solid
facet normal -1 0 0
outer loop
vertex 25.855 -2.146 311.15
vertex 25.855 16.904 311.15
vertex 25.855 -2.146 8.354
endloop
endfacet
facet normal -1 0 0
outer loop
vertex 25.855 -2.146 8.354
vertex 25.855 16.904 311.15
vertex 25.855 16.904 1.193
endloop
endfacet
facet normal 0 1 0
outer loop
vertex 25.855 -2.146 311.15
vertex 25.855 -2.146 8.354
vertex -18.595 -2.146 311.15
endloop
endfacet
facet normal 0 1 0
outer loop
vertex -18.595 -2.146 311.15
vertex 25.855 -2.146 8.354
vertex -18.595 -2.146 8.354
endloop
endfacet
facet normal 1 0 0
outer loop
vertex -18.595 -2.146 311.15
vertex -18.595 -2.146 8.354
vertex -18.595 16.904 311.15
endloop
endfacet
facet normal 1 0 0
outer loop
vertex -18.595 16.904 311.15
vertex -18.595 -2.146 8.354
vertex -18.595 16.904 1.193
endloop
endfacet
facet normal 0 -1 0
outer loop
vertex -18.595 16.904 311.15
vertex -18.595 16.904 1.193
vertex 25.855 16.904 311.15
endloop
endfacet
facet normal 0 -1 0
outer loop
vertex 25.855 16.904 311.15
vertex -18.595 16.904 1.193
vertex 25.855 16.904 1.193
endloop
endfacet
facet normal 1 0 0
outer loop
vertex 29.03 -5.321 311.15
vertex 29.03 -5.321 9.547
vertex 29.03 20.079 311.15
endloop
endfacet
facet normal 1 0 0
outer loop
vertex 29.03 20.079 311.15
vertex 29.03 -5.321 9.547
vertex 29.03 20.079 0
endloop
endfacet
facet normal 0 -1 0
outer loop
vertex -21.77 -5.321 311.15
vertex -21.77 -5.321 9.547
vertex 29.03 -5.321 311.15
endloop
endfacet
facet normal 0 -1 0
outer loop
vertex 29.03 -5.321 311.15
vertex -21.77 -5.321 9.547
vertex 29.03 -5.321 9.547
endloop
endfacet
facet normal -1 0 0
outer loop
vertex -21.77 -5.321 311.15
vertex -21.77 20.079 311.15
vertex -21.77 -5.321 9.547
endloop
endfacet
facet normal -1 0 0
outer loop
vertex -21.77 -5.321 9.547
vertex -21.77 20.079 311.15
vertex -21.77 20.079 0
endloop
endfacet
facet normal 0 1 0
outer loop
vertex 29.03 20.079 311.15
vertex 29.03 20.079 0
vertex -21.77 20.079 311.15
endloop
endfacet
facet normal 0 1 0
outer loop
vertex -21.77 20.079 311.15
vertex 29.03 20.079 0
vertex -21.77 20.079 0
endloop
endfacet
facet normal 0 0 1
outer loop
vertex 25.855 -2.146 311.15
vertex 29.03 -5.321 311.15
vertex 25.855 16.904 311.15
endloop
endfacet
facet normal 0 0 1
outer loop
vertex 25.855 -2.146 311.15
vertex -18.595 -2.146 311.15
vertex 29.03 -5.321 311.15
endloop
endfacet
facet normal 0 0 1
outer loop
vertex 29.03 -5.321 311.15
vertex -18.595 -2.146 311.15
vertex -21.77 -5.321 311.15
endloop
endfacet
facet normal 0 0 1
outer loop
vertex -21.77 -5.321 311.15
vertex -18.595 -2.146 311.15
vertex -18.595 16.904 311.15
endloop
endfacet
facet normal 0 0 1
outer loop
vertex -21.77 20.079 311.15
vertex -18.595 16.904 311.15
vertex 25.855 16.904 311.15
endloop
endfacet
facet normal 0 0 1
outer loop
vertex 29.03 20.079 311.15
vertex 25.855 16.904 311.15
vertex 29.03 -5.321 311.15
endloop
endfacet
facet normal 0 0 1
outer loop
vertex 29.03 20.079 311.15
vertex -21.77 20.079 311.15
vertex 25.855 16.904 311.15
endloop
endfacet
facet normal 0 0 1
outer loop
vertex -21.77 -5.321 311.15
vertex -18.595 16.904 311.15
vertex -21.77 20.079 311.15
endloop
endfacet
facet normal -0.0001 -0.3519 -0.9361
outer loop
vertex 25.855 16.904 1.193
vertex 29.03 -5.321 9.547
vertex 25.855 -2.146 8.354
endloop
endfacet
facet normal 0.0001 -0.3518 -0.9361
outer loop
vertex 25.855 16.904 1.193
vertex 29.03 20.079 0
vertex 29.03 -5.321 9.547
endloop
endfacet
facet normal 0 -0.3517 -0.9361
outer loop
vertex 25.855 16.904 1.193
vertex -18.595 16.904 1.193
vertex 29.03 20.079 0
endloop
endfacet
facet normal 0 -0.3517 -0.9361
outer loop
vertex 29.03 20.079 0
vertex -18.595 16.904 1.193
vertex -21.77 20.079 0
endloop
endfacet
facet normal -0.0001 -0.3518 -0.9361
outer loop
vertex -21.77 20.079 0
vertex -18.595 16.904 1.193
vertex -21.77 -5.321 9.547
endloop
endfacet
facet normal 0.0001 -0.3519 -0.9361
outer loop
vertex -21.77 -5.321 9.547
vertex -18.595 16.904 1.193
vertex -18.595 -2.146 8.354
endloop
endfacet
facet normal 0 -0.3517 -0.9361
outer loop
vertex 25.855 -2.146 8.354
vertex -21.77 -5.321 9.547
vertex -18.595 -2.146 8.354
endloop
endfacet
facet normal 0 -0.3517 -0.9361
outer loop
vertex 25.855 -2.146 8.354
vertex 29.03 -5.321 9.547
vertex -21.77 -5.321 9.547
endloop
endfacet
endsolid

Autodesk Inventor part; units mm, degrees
ref_plane "YZ Plane" through (0, 0, 0) normal (1, 0, 0) x (0, 1, 0)
ref_plane "XZ Plane" through (0, 0, 0) normal (0, 1, 0) x (-1, 0, 0)
ref_plane "XY Plane" through (0, 0, 0) normal (0, 0, 1) x (1, 0, 0)
sketch "Sketch1" plane through (0, 0, 0) normal (0, 0, 1) x (1, 0, 0)
  line L0 (-21.7703, 20.0792) -> (29.0297, 20.0792)
  line L1 (29.0297, 20.0792) -> (29.0297, -5.3208)
  line L2 (29.0297, -5.3208) -> (-21.7703, -5.3208)
  line L3 (-21.7703, -5.3208) -> (-21.7703, 20.0792)
  dimension "d0" = 25.4
  dimension "d1" = 50.8
extrude "Extrusion1" add sketch "Sketch1" along normal blind 311.15
shell "Shell1" thickness 3.175 removed faces 2 at (-4.8369, 11.6125, 311.15) at (-4.8369, 11.6125, 0)
draft "FaceDraft1" angle 20.6 pull direction (0, -1, 0) faces at (-3.7786, 19.0209, 0) fixed edges at (3.6297, 20.0792, 0)
properties part number "FE-00013-04"
